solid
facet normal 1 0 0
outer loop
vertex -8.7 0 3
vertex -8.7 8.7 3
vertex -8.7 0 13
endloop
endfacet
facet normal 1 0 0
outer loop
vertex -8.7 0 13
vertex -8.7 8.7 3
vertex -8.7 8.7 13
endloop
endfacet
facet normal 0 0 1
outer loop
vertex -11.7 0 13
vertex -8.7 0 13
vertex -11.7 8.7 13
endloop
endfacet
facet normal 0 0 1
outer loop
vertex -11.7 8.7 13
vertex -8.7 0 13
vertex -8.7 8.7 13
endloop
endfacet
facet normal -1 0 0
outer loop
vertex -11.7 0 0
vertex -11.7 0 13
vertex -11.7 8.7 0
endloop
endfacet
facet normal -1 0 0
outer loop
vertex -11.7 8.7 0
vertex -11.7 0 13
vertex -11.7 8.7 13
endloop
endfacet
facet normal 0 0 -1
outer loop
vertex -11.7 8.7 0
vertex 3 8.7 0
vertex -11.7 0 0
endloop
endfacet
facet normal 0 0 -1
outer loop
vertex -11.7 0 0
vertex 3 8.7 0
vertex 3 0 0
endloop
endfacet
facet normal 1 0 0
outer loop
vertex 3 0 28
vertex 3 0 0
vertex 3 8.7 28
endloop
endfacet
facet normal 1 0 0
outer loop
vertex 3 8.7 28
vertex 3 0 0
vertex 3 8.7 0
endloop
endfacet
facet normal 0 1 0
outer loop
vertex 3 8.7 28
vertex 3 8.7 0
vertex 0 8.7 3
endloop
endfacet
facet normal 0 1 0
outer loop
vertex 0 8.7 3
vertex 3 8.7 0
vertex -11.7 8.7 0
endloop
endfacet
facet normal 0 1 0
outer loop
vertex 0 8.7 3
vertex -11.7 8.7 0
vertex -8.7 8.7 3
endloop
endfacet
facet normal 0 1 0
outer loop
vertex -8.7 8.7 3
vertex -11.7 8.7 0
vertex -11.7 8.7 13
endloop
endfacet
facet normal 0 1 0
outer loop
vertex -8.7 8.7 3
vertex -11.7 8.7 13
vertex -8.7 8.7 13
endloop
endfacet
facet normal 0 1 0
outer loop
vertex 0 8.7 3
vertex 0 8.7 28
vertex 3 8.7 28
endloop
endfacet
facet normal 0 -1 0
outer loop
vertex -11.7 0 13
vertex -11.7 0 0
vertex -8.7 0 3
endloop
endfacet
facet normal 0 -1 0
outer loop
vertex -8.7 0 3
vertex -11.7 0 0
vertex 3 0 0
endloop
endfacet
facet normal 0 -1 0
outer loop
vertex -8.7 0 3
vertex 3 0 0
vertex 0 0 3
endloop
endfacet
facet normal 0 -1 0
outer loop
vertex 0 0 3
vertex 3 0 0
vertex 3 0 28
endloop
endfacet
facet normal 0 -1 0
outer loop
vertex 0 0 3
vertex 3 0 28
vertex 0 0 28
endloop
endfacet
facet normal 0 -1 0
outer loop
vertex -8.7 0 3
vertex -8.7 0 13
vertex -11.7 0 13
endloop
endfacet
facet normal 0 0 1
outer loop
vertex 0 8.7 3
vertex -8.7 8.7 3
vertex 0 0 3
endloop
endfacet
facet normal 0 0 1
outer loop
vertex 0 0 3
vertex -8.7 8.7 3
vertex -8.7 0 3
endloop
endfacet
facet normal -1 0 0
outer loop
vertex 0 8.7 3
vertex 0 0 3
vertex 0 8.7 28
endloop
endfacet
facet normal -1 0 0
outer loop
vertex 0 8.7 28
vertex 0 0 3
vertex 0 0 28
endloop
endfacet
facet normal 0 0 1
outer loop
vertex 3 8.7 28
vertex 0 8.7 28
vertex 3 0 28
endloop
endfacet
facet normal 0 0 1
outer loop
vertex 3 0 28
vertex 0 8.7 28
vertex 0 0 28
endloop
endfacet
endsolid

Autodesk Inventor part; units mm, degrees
ref_plane "YZ Plane" through (0, 0, 0) normal (1, 0, 0) x (0, 1, 0)
ref_plane "XZ Plane" through (0, 0, 0) normal (0, 1, 0) x (-1, 0, 0)
ref_plane "XY Plane" through (0, 0, 0) normal (0, 0, 1) x (1, 0, 0)
sketch "Sketch1" plane through (0, 0, 0) normal (0, 0, 1) x (1, 0, 0)
  line L0 (0, 0) -> (-8.7, 0)
  line L1 (-8.7, 0) -> (-8.7, 8.7)
  line L2 (-8.7, 8.7) -> (0, 8.7)
  line L3 (0, 8.7) -> (0, 0)
  dimension "d0" = 8.7
  dimension "d1" = 8.7
extrude "Extrusion1" add sketch "Sketch1" along normal blind 3
sketch "Sketch2" plane through (-8.7, 0, 0) normal (-1, 0, 0) x (0, 0, 1)
  line L0 (0, 8.7) -> (0, 0) projected
  line L1 (0, 0) -> (3, 0)
  line L2 (3, 0) -> (3, 8.7)
  line L3 (3, 8.7) -> (0, 8.7)
  line L4 (0, 8.7) -> (0, 0)
extrude "Extrusion2" add sketch "Sketch2" along normal blind 3
sketch "Sketch3" plane through (0, 0, 3) normal (0, 0, 1) x (1, 0, 0)
  line L0 (0, 8.7) -> (-11.7, 8.7) projected
  line L1 (0, 0) -> (-11.7, 0) projected
  line L2 (-11.7, 8.7) -> (-8.7, 8.7)
  line L3 (-8.7, 8.7) -> (-8.7, 0)
  line L4 (-8.7, 0) -> (-11.7, 0)
  line L5 (-11.7, 0) -> (-11.7, 8.7)
  dimension "d6" = 3
extrude "Extrusion3" add sketch "Sketch3" along normal blind 10
sketch "Sketch5" plane through (0, 0, 0) normal (1, 0, 0) x (0, 0, -1)
  line L0 (0, 8.7) -> (-3, 8.7) projected
  line L1 (0, 0) -> (-3, 0)
  line L2 (-3, 0) -> (-3, 8.7)
  line L3 (-3, 8.7) -> (0, 8.7)
  line L4 (0, 8.7) -> (0, 0)
  dimension "d9" = 3
extrude "Extrusion4" add sketch "Sketch5" along normal blind 3
sketch "Sketch6" plane through (0, 0, 3) normal (0, 0, 1) x (1, 0, 0)
  line L0 (3, 8.7) -> (-11.7, 8.7) projected
  line L1 (3, 8.7) -> (0, 8.7)
  line L2 (0, 8.7) -> (0, 0)
  line L3 (0, 0) -> (3, 0)
  line L4 (3, 0) -> (3, 8.7)
extrude "Extrusion5" add sketch "Sketch6" along normal blind 25
properties part number "Hook_TestFit"
